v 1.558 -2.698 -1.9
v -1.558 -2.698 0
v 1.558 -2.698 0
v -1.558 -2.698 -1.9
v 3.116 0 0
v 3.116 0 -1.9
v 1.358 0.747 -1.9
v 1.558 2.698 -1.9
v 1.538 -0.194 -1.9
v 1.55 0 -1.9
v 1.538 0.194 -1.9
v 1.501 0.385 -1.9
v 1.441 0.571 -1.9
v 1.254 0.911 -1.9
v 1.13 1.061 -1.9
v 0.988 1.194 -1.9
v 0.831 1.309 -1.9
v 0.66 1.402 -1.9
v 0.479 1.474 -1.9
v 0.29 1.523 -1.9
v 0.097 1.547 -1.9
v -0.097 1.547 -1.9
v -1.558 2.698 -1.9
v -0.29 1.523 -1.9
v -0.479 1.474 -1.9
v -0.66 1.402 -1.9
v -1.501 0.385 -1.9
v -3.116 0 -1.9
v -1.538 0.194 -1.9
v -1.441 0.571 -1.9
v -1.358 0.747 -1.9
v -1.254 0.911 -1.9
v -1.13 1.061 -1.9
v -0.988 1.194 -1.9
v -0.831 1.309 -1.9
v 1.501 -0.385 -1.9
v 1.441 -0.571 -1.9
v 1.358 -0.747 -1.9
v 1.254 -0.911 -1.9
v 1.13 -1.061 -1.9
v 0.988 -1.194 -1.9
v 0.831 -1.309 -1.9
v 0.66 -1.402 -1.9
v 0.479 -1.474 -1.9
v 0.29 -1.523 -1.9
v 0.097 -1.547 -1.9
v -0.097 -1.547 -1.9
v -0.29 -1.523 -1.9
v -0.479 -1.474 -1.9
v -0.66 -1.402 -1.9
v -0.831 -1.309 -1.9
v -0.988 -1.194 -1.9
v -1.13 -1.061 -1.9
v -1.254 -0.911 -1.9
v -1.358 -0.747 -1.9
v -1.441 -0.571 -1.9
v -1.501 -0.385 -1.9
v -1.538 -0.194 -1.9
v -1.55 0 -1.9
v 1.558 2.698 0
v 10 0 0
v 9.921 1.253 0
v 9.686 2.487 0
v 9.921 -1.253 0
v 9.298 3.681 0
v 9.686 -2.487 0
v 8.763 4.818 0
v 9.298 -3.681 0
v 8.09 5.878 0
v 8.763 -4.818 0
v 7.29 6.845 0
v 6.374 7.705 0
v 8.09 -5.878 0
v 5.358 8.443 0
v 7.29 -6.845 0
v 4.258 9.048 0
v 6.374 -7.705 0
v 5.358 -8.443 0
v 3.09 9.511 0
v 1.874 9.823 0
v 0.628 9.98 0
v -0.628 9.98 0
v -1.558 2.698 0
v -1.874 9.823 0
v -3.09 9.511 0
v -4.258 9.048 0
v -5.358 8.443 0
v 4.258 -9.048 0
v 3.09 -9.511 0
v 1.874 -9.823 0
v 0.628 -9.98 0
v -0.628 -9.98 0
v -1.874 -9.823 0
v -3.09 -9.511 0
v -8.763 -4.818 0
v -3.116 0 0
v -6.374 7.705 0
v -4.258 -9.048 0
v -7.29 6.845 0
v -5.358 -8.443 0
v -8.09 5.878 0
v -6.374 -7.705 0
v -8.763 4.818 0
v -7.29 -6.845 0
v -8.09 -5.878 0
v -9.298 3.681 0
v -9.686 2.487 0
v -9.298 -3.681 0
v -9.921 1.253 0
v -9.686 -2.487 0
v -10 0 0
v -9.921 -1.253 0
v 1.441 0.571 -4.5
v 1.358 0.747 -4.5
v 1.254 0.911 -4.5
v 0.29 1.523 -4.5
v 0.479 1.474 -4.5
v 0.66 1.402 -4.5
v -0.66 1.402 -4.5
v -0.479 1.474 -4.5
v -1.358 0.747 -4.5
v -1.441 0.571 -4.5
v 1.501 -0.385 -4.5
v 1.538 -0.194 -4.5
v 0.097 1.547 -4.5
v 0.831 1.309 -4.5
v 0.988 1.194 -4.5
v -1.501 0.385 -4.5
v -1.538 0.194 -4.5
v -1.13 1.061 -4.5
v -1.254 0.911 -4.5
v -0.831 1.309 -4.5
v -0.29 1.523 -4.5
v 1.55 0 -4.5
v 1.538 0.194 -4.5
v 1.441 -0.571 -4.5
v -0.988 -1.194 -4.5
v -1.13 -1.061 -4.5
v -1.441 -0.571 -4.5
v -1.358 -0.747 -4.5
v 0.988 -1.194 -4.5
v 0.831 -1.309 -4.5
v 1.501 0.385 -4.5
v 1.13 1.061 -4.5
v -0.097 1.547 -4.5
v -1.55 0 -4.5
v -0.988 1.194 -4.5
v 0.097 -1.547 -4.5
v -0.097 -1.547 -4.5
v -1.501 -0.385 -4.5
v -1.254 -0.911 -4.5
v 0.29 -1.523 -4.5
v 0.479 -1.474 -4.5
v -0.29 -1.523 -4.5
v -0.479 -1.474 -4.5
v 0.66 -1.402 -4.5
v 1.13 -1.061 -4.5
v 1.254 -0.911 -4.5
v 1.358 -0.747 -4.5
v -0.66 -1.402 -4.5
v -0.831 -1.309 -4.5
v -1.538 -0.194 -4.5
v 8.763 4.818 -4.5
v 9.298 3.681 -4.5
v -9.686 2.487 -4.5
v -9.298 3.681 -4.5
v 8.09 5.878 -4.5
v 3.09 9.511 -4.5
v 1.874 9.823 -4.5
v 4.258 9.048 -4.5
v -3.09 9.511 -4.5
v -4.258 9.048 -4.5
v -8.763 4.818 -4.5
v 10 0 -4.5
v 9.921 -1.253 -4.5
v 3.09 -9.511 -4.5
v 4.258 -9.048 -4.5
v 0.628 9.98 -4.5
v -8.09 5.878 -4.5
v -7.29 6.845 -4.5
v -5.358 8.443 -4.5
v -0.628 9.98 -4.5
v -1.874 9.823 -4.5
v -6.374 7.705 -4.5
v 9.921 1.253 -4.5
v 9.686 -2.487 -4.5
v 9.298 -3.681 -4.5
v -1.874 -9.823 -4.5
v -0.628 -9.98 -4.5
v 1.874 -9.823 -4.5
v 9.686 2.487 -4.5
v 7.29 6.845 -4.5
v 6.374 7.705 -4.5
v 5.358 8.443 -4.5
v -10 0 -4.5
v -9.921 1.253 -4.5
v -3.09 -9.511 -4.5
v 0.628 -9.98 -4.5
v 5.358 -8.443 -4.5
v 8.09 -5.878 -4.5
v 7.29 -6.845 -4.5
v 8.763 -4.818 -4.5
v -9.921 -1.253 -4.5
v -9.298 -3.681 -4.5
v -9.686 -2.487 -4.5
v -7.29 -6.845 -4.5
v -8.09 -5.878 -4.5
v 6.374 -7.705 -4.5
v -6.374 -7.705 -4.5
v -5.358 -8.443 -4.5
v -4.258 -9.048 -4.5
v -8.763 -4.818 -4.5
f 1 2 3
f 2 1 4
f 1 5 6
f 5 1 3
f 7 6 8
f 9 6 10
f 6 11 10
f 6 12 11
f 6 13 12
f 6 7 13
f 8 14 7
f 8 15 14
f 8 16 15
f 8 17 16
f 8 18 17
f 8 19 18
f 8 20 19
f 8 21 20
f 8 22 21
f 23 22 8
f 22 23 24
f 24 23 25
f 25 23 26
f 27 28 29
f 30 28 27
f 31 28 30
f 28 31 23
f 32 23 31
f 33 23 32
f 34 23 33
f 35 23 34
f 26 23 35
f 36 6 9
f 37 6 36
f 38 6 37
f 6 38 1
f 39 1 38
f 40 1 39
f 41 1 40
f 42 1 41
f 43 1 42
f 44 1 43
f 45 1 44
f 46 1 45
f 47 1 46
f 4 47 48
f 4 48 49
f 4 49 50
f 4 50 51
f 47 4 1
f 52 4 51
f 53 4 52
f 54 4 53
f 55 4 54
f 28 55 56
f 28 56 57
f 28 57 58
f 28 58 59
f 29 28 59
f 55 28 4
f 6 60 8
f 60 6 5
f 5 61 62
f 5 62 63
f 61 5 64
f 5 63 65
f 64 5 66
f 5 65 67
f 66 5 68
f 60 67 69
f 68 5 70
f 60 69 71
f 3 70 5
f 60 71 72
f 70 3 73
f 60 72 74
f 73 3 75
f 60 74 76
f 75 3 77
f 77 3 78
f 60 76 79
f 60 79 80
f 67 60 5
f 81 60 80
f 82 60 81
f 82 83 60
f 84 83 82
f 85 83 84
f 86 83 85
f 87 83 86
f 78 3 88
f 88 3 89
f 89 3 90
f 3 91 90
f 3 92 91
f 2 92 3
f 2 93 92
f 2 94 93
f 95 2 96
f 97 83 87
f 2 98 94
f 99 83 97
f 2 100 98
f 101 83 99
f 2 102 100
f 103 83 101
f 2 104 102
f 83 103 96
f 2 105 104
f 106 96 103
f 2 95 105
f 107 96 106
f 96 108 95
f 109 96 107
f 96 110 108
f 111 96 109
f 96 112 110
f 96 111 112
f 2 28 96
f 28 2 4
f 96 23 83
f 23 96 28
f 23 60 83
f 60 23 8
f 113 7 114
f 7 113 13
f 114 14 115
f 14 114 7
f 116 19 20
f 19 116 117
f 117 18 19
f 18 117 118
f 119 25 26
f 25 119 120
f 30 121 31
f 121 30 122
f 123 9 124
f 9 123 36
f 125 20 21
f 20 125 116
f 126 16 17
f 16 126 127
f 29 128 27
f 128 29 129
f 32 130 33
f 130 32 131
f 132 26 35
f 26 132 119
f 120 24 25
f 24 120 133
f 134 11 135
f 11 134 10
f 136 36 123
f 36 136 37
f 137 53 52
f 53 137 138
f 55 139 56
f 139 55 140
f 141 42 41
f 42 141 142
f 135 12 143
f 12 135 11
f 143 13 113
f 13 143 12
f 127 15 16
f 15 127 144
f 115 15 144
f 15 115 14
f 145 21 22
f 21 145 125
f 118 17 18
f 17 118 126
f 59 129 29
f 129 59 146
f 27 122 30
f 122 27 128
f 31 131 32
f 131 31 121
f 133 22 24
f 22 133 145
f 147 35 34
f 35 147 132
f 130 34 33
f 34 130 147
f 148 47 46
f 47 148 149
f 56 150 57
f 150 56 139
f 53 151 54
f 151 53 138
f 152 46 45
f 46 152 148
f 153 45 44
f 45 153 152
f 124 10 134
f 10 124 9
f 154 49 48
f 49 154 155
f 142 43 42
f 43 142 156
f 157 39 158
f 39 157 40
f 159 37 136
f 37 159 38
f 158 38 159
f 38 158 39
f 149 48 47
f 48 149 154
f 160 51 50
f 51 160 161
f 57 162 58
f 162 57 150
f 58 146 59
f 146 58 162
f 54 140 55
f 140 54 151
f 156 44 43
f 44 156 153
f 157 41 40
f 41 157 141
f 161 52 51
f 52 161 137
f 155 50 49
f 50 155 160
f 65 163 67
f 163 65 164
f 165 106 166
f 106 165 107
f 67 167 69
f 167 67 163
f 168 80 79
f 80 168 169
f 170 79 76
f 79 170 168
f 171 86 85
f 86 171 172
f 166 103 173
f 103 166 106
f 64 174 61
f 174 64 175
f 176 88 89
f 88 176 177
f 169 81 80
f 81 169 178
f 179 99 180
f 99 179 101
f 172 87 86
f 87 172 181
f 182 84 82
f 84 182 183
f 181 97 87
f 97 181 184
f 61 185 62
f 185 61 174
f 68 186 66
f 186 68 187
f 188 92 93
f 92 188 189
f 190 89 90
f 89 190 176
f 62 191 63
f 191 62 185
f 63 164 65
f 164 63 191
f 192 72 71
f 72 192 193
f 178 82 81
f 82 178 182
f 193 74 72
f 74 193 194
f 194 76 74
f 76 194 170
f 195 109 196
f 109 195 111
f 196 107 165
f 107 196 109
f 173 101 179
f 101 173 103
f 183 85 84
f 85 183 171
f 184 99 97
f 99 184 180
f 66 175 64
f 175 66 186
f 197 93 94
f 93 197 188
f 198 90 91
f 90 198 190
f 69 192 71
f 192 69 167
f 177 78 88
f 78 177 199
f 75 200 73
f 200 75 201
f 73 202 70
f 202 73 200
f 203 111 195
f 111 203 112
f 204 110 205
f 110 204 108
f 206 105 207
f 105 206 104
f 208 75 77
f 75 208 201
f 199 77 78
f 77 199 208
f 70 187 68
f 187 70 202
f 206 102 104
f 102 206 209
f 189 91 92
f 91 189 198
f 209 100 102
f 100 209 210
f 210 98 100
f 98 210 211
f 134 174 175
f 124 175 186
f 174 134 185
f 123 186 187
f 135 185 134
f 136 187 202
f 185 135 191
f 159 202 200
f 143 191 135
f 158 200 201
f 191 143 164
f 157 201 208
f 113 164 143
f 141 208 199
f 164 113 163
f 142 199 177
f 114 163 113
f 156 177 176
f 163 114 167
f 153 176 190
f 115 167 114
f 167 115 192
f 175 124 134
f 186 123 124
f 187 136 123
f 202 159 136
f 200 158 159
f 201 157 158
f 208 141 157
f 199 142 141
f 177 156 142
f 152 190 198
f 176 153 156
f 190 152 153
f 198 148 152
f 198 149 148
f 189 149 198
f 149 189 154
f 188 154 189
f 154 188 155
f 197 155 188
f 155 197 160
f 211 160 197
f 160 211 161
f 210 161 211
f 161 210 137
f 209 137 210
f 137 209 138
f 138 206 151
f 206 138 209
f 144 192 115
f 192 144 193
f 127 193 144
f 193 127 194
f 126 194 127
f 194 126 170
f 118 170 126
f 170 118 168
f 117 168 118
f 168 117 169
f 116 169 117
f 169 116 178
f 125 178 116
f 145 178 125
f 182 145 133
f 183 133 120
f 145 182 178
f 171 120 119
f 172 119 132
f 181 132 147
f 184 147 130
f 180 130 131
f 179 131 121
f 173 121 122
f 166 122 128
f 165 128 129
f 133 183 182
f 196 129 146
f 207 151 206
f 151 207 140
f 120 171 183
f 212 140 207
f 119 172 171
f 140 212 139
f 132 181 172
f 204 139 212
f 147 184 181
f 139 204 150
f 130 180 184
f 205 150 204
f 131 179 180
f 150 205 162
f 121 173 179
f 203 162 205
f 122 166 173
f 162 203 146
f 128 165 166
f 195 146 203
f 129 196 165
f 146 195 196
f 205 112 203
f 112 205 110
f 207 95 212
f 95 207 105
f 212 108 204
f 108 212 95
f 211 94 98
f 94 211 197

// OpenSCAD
$fn = 50;


difference() {
	union() {
		translate(v = [0, 0, -4.5000000000]) {
			cylinder(h = 4.5000000000, r = 10.0000000000);
		}
	}
	union() {
		translate(v = [0, 0, 0]) {
			rotate(a = [0, 0, 0]) {
				difference() {
					union() {
						translate(v = [0, 0, -1.9000000000]) {
							linear_extrude(height = 1.9000000000) {
								polygon(points = [[3.1158000000, 0.0000000000], [1.5579000000, 2.6983619531], [-1.5579000000, 2.6983619531], [-3.1158000000, 0.0000000000], [-1.5579000000, -2.6983619531], [1.5579000000, -2.6983619531]]);
							}
						}
					}
					union();
				}
			}
		}
		#translate(v = [0, 0, -100.0000000000]) {
			cylinder(h = 200, r = 1.5500000000);
		}
	}
}
